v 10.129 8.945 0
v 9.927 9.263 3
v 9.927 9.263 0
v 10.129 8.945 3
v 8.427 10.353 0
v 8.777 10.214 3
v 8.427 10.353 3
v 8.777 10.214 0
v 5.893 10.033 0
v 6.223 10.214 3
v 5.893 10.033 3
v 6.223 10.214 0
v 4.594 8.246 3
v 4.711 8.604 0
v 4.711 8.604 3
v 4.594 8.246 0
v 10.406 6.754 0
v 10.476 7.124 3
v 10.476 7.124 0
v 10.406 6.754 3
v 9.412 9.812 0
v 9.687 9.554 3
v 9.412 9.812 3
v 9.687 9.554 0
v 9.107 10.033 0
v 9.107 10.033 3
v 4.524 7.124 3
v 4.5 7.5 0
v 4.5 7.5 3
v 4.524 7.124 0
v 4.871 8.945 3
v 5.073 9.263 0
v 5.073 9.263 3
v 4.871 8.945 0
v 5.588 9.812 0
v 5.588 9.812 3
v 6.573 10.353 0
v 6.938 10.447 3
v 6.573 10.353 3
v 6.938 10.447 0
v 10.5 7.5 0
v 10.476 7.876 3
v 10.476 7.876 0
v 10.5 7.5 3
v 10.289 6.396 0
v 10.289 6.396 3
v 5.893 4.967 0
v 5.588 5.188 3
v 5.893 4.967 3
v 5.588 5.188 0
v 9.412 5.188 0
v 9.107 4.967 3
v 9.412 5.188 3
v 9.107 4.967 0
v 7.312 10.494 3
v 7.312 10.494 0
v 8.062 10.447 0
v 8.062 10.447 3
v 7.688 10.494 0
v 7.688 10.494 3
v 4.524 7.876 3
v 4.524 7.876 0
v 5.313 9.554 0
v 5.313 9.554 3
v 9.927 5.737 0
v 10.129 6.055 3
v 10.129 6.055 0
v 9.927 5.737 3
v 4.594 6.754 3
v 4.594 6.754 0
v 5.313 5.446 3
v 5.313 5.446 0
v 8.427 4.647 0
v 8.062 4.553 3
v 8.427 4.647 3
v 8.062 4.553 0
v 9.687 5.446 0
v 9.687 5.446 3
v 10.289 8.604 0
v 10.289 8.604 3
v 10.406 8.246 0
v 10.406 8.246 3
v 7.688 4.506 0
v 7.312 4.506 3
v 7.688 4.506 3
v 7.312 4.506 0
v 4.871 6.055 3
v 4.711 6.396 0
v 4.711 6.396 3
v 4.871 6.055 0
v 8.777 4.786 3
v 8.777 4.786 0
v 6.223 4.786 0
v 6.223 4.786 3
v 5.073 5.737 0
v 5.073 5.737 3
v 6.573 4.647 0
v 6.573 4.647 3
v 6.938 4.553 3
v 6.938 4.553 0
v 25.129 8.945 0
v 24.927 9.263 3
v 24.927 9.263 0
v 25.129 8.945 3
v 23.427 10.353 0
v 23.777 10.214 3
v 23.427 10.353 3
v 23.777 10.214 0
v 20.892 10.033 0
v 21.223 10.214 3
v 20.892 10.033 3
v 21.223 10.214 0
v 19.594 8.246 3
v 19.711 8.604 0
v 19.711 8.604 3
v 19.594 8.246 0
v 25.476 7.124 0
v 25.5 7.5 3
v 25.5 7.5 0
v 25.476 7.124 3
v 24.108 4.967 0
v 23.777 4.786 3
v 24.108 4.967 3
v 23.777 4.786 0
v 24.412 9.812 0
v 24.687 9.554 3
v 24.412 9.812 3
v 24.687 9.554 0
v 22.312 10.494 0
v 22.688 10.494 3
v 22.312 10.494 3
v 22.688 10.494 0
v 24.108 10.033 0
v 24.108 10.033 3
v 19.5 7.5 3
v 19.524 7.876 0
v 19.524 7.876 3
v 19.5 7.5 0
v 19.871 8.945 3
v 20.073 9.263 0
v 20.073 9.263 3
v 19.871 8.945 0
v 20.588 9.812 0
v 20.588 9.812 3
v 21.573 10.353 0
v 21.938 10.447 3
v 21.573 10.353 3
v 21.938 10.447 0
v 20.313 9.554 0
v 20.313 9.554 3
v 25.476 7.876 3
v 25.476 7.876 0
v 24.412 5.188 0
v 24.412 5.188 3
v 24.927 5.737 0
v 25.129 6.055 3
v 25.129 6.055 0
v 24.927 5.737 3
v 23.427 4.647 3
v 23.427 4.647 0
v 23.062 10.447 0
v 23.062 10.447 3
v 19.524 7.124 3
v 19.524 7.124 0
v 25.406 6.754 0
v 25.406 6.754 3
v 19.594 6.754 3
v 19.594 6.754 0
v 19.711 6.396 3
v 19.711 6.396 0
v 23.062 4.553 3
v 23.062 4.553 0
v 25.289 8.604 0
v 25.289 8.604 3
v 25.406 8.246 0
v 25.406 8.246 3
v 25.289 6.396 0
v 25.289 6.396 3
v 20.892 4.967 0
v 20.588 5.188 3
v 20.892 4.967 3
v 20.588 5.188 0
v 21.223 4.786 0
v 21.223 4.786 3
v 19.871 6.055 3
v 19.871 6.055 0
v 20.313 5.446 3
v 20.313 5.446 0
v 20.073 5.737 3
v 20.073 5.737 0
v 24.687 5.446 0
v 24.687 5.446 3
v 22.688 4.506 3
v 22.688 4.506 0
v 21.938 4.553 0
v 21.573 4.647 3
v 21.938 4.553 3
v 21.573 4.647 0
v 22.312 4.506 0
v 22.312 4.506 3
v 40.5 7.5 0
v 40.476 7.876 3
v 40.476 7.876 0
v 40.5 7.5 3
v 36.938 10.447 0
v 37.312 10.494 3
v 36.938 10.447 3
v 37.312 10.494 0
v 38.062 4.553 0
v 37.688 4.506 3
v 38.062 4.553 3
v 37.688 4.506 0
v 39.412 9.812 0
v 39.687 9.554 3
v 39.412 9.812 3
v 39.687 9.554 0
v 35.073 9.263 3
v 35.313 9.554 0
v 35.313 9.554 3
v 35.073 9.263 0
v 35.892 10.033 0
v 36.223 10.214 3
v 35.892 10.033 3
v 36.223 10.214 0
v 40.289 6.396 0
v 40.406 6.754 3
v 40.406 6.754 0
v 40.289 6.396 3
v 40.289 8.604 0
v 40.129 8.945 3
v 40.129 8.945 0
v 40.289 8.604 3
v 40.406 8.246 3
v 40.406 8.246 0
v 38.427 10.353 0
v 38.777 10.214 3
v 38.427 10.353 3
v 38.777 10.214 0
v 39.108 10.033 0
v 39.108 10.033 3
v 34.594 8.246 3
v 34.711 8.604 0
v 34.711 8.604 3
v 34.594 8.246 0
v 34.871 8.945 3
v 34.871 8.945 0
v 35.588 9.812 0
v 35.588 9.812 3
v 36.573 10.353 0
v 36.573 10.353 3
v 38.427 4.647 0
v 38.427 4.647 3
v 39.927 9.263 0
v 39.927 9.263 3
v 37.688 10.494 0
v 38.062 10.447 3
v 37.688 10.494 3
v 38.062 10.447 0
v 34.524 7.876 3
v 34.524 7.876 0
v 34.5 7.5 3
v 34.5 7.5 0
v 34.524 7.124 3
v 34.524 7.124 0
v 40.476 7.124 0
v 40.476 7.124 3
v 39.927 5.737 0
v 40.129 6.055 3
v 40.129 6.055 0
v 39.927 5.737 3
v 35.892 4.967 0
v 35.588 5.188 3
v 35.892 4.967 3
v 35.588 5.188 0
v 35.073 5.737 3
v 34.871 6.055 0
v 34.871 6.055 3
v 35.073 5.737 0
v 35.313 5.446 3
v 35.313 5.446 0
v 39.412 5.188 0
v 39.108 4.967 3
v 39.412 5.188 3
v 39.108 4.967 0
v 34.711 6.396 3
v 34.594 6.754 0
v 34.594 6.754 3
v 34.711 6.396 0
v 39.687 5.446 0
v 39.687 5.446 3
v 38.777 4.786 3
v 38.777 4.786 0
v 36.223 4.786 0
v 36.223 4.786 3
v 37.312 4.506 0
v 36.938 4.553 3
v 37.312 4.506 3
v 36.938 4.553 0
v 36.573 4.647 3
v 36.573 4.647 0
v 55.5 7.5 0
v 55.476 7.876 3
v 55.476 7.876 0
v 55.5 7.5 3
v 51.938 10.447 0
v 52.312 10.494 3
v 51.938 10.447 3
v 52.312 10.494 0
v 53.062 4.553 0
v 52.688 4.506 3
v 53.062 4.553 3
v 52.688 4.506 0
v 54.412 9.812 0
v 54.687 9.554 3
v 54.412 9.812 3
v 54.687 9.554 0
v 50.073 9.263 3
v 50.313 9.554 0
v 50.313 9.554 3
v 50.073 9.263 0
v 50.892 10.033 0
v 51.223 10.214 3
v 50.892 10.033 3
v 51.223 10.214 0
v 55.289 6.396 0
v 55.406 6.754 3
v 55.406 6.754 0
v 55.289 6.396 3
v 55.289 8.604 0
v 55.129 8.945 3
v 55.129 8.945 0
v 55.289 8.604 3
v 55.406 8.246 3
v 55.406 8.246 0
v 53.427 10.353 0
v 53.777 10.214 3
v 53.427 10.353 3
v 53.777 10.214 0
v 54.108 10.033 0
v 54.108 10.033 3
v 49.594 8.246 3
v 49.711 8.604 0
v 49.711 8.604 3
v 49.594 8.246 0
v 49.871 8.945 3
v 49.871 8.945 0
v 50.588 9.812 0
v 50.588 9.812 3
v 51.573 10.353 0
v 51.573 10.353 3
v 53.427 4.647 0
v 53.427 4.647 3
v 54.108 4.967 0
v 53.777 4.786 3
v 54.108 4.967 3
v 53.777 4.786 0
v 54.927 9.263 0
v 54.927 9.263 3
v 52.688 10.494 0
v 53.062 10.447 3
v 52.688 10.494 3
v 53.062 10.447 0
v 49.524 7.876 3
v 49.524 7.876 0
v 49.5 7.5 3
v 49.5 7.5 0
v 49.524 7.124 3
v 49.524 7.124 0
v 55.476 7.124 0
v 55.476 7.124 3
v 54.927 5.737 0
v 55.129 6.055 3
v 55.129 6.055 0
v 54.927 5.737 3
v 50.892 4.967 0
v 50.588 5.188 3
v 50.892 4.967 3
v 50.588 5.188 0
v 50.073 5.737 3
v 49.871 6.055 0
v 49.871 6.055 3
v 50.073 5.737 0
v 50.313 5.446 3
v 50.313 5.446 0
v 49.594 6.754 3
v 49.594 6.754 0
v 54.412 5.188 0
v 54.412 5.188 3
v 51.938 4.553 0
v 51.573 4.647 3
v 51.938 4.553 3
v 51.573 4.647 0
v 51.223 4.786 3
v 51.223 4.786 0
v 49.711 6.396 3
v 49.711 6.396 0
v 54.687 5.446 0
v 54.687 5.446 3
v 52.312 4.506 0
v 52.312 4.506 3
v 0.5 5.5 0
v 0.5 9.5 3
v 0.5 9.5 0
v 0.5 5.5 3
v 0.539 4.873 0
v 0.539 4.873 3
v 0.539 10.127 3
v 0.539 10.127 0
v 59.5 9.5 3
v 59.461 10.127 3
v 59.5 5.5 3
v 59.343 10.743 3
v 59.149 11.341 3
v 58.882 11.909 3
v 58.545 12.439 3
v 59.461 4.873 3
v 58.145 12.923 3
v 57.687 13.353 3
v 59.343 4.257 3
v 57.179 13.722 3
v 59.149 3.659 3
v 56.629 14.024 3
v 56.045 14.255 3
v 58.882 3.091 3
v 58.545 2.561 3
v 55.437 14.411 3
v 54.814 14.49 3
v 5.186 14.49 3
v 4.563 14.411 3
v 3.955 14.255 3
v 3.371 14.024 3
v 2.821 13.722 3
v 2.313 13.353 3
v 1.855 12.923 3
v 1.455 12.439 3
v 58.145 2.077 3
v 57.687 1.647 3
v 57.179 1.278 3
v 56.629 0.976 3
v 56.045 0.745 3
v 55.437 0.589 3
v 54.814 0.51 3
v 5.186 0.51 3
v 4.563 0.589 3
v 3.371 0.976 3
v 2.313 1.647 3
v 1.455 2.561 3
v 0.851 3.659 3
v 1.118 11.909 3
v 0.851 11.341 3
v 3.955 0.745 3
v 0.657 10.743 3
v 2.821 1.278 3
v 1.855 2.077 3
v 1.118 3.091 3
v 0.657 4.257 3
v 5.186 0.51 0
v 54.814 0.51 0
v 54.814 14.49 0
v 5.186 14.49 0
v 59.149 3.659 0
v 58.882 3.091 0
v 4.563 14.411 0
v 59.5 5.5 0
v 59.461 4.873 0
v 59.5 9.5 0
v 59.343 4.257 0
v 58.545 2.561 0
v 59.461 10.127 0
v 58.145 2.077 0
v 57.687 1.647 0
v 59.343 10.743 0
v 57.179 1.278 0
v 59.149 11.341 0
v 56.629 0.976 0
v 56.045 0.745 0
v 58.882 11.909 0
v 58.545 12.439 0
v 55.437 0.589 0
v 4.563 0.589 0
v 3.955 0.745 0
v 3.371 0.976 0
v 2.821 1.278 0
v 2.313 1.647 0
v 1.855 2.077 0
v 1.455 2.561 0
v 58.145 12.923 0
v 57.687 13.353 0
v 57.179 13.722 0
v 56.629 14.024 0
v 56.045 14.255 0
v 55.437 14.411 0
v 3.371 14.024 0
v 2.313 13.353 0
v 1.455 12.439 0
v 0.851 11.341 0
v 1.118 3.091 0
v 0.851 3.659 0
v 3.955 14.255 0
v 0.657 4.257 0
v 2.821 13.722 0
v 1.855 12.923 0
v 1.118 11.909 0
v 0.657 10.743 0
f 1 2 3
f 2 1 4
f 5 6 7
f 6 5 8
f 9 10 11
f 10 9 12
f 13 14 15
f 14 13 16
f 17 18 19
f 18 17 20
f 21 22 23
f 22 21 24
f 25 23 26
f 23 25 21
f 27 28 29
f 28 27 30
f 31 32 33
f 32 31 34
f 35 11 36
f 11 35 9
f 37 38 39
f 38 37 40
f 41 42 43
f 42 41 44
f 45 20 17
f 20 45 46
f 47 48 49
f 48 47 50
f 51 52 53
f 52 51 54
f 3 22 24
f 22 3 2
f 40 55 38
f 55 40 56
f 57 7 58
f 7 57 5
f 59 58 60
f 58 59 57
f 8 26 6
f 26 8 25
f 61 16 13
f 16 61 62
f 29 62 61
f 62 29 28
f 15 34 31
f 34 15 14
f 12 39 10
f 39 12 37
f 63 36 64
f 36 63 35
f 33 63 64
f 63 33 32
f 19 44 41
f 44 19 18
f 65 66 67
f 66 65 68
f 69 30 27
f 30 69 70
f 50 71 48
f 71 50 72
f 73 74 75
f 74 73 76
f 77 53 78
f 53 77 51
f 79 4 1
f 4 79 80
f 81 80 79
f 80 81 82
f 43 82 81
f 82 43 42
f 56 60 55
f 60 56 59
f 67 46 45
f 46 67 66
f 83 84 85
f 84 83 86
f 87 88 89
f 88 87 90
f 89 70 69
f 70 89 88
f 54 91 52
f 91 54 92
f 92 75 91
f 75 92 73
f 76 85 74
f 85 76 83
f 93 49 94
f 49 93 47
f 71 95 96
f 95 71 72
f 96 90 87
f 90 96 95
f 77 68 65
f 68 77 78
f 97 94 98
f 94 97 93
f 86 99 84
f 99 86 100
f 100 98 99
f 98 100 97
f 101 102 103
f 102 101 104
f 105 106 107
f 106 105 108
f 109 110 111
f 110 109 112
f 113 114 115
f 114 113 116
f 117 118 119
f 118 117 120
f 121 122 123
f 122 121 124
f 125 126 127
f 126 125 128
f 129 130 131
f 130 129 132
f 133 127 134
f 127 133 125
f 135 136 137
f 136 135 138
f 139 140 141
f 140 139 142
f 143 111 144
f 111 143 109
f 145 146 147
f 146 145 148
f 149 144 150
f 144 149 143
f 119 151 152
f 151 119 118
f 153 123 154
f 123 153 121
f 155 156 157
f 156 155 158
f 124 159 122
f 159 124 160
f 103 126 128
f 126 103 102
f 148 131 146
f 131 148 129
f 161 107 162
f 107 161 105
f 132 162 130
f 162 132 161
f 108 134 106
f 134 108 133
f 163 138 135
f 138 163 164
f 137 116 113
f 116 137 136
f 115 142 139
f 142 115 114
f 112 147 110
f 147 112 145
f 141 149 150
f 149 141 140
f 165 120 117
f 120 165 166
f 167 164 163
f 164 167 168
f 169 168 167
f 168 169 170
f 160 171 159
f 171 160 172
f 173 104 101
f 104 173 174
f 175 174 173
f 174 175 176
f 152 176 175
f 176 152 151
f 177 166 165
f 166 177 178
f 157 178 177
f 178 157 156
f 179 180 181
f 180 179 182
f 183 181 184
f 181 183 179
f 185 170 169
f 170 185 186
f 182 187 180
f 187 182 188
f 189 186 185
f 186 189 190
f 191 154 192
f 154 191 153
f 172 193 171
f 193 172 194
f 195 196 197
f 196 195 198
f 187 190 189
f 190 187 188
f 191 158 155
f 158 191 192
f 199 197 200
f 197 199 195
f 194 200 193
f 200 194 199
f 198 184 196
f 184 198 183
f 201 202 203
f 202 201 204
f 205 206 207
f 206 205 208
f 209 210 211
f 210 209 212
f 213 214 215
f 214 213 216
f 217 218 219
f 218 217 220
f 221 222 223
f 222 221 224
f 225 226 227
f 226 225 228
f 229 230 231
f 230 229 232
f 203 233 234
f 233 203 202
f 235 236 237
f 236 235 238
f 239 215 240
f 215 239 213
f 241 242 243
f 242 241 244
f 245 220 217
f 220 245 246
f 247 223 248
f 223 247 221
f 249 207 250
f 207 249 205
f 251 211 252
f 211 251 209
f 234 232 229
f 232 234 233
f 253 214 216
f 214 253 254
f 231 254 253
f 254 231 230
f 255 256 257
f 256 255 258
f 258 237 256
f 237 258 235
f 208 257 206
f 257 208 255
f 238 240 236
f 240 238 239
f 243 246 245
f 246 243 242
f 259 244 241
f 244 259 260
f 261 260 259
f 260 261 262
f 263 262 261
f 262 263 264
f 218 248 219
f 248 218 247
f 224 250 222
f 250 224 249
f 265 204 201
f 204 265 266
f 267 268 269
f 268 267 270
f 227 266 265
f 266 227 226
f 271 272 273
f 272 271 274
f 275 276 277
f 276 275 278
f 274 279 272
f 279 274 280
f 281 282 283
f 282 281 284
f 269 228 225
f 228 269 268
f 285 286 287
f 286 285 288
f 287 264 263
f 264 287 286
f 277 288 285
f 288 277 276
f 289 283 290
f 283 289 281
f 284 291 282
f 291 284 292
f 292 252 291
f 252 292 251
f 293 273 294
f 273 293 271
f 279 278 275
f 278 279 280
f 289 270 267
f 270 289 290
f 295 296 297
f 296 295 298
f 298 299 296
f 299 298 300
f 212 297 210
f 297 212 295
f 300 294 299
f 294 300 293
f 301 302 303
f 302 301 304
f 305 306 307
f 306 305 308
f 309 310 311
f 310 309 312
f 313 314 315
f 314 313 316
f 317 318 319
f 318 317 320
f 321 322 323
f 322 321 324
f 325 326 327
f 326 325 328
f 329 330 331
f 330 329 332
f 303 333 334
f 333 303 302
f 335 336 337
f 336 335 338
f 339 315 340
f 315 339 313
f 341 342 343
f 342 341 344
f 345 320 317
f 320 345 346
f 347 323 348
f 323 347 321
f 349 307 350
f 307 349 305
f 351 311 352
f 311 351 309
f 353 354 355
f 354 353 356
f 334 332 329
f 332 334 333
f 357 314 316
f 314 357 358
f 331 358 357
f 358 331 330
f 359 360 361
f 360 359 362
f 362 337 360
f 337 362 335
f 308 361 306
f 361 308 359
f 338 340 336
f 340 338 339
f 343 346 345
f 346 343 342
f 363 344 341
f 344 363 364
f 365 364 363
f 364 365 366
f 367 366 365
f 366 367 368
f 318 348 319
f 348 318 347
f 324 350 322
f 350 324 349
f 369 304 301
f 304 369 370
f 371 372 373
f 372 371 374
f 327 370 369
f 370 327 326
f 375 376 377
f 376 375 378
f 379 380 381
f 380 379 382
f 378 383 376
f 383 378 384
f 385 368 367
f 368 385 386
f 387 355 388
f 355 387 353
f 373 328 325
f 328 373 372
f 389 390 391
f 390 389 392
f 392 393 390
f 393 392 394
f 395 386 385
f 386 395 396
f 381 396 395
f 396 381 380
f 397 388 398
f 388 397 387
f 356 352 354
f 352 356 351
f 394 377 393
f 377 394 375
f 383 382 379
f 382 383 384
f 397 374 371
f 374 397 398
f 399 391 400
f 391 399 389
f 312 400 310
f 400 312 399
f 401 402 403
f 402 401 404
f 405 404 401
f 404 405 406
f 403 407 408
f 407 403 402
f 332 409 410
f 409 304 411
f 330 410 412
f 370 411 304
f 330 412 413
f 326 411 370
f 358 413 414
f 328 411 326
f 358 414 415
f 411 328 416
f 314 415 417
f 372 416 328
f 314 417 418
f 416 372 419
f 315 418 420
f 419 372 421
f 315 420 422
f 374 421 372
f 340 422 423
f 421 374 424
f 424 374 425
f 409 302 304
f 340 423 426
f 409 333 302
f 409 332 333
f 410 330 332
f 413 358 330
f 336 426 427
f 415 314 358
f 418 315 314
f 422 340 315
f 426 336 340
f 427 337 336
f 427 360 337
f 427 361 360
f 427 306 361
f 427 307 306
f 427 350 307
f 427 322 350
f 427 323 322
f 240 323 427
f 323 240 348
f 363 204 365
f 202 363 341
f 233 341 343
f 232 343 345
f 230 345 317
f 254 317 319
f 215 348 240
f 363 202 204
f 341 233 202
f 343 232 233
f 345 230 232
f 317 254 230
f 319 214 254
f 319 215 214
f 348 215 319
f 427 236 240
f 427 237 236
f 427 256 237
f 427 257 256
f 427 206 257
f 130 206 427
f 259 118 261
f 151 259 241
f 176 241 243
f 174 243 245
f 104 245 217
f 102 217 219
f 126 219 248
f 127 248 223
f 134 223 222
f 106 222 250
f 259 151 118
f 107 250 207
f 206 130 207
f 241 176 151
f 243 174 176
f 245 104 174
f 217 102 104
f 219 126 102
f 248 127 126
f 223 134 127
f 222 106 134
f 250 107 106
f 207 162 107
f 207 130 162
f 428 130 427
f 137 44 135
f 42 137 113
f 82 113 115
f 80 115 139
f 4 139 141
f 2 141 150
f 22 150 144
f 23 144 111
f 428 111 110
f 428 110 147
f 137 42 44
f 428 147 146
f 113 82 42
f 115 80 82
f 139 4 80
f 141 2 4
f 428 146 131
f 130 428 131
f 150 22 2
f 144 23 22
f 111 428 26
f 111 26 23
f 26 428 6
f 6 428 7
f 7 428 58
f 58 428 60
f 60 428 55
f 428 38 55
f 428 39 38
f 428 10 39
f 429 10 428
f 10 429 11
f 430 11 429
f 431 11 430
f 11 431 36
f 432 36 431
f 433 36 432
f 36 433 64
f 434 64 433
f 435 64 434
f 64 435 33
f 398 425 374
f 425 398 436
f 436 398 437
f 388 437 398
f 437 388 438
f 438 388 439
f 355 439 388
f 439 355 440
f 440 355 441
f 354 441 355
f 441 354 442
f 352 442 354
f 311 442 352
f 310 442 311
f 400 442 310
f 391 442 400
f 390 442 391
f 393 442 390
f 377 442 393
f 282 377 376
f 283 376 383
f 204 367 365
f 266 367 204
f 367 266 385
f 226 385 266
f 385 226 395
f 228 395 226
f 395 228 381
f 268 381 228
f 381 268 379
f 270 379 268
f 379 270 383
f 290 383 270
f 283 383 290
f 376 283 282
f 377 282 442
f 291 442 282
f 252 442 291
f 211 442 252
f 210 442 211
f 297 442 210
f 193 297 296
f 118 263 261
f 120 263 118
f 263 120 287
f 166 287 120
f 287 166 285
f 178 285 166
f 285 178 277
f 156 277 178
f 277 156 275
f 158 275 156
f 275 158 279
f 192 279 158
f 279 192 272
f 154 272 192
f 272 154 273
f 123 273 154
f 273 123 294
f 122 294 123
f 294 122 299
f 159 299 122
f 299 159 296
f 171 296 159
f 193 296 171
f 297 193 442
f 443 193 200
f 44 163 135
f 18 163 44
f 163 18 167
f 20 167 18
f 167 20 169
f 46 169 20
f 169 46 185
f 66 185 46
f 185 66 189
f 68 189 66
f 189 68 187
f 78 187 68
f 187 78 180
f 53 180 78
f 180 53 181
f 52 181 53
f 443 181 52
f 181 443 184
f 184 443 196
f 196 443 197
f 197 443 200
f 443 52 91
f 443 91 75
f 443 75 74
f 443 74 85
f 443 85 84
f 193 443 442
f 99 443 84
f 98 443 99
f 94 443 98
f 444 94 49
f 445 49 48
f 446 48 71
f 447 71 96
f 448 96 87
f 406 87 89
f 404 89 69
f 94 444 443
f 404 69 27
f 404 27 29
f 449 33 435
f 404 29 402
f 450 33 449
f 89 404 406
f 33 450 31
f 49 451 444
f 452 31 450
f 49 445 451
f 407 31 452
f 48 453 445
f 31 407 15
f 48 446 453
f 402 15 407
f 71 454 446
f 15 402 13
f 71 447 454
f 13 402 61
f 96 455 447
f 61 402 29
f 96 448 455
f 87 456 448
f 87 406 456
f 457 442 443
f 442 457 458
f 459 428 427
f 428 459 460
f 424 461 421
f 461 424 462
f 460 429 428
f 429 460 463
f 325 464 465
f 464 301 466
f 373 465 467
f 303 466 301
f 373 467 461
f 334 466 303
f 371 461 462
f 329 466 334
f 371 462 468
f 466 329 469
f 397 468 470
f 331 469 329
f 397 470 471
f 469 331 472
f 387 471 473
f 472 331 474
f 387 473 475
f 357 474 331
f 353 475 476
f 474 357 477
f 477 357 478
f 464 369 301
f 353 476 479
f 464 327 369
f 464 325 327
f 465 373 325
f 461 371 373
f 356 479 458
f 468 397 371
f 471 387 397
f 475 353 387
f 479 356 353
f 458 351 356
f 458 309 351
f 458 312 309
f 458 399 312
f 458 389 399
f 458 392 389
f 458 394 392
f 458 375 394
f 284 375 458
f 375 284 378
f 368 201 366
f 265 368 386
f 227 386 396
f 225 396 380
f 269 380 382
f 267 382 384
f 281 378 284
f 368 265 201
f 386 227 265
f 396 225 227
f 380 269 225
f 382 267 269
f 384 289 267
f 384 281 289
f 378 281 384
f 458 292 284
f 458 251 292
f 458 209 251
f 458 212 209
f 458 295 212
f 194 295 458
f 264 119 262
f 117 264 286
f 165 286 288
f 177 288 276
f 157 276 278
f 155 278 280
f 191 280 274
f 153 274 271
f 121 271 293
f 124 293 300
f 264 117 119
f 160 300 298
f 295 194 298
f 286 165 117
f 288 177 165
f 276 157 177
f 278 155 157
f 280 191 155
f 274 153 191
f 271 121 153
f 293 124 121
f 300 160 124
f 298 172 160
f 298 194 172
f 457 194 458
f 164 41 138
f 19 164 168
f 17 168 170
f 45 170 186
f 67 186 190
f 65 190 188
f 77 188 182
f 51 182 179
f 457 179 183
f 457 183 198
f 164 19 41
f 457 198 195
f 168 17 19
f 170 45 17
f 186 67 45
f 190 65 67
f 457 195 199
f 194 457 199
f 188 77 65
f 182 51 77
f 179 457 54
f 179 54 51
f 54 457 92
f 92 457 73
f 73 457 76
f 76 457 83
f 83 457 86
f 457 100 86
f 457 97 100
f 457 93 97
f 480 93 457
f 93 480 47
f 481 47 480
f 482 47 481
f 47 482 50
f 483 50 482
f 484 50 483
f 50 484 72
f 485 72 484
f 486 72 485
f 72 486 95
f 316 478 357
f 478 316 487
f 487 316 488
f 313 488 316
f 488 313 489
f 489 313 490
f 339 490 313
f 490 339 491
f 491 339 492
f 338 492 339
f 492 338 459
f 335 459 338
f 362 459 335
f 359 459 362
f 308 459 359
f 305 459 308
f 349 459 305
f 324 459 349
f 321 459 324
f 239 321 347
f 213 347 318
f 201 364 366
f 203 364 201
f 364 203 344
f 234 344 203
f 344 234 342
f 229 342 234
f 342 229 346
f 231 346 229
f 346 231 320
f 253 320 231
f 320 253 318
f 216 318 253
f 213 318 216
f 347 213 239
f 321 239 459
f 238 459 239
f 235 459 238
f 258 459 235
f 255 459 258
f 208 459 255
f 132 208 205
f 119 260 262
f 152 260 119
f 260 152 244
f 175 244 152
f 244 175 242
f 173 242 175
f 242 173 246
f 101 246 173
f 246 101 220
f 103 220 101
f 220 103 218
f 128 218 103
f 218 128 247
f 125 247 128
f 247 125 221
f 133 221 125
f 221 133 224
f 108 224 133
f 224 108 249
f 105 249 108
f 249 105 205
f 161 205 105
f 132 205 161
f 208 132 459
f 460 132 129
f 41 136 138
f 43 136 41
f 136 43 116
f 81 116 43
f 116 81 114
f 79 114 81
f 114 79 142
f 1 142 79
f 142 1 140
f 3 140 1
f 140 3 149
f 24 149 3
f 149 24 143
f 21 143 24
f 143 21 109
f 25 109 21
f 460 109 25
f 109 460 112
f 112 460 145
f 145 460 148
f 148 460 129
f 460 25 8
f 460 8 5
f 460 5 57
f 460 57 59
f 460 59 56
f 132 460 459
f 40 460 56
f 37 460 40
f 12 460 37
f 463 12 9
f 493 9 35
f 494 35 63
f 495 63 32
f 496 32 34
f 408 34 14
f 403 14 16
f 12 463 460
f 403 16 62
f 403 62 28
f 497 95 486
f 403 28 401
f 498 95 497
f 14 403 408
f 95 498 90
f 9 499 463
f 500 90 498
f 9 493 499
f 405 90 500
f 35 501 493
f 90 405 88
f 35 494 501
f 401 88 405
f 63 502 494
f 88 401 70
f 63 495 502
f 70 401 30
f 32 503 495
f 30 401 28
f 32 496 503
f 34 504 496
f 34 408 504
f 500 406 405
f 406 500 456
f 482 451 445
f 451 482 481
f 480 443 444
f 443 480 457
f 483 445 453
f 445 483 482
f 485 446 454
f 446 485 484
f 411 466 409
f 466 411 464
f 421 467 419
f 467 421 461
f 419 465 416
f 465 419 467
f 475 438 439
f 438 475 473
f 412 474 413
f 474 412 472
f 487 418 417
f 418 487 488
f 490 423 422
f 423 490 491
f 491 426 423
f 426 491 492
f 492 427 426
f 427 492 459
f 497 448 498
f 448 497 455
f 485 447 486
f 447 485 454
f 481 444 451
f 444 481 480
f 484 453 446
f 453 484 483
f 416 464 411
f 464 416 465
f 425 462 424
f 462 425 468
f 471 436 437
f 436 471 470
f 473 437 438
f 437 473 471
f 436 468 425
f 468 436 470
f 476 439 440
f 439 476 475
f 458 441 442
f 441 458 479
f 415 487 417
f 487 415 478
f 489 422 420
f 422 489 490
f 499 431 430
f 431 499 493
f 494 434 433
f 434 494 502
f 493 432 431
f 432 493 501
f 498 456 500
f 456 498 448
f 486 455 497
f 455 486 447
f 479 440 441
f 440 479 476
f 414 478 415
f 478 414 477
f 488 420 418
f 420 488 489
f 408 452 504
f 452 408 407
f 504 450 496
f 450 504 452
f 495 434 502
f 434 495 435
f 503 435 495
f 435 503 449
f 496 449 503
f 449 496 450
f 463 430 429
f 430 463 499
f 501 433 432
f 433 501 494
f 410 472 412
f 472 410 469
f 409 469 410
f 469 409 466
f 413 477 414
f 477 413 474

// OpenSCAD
// Generated by SolidPython 1.1.3 on 2023-01-30 13:27:20
$fn = 50;


difference() {
	union() {
		translate(v = [30.0000000000, 7.5000000000, 0]) {
			rotate(a = [0, 0, 0]) {
				hull() {
					translate(v = [-24.5000000000, 2.0000000000, 0]) {
						rotate(a = [0, 0, 0]) {
							translate(v = [0, 0, 0]) {
								rotate(a = [0, 0, 0]) {
									cylinder(h = 3, r = 5);
								}
							}
						}
					}
					translate(v = [24.5000000000, 2.0000000000, 0]) {
						rotate(a = [0, 0, 0]) {
							translate(v = [0, 0, 0]) {
								rotate(a = [0, 0, 0]) {
									cylinder(h = 3, r = 5);
								}
							}
						}
					}
					translate(v = [-24.5000000000, -2.0000000000, 0]) {
						rotate(a = [0, 0, 0]) {
							translate(v = [0, 0, 0]) {
								rotate(a = [0, 0, 0]) {
									cylinder(h = 3, r = 5);
								}
							}
						}
					}
					translate(v = [24.5000000000, -2.0000000000, 0]) {
						rotate(a = [0, 0, 0]) {
							translate(v = [0, 0, 0]) {
								rotate(a = [0, 0, 0]) {
									cylinder(h = 3, r = 5);
								}
							}
						}
					}
				}
			}
		}
	}
	union() {
		translate(v = [7.5000000000, 7.5000000000, 0]) {
			rotate(a = [0, 0, 0]) {
				translate(v = [0, 0, -50]) {
					rotate(a = [0, 0, 0]) {
						cylinder(h = 100, r = 3.0000000000);
					}
				}
			}
		}
		translate(v = [22.5000000000, 7.5000000000, 0]) {
			rotate(a = [0, 0, 0]) {
				translate(v = [0, 0, -50]) {
					rotate(a = [0, 0, 0]) {
						cylinder(h = 100, r = 3.0000000000);
					}
				}
			}
		}
		translate(v = [37.5000000000, 7.5000000000, 0]) {
			rotate(a = [0, 0, 0]) {
				translate(v = [0, 0, -50]) {
					rotate(a = [0, 0, 0]) {
						cylinder(h = 100, r = 3.0000000000);
					}
				}
			}
		}
		translate(v = [52.5000000000, 7.5000000000, 0]) {
			rotate(a = [0, 0, 0]) {
				translate(v = [0, 0, -50]) {
					rotate(a = [0, 0, 0]) {
						cylinder(h = 100, r = 3.0000000000);
					}
				}
			}
		}
	}
}
/***********************************************
*********      SolidPython code:      **********
************************************************
 
from solid import *
import os
import subprocess

import oomB

import opsc_library_gen

mode = "laser"
#mode = "3d_print"

defined_objects = {}

radius_dict = {}
countersunk_dict = {}


def set_mode(m):
    global mode
    mode = m
    radius_dict['M6'] = 6.5/2
    radius_dict['M3'] = 3.3/2
    if mode == "laser":
        radius_dict['M6'] = 6/2
        radius_dict['M3'] = 3/2

    countersunk_dict['M3'] = {}
    countersunk_dict['M3']['little_rad'] = radius_dict['M3']
    countersunk_dict['M3']['big_rad'] = (5.5+0.6)/2
    if mode == "laser":
        countersunk_dict['M3']['big_rad'] = (4.75+0.6)/2
        countersunk_dict['M3']['little_rad'] = (4.75+0.6)/2

    countersunk_dict['M3']['height'] = 1.7


def opsc_make_object(filename, objects, save_type="none",resolution=50, layers = 1, tilediff = 200, mode="laser"):
    set_mode(mode)
    save_type = save_type.lower()
    os.makedirs(os.path.dirname(filename), exist_ok=True)
    final_object = opsc_get_object(objects)
    # Save the final object to the specified filename    
    scad_render_to_file(final_object, filename, file_header='$fn = %s;' % resolution, include_orig_code=True)
    if mode == "laser":
        filename_laser = filename.replace(".scad","-flat.scad")
        scad_render_to_file(getLaser(final_object, layers=layers, tilediff=tilediff), filename_laser, file_header='$fn = %s;' % resolution, include_orig_code=True)
        if save_type == "all":
            saveToAll(filename_laser)
        elif save_type == "dxf":
            saveToDxf(filename_laser)
    if save_type == "all":
        saveToAll(filename)
    elif save_type == "dxf":
        saveToDxf(filename)


def opsc_get_object(objects):
    # Create the solidpython objects
    positive_objects = [get_opsc_item(obj) for obj in objects if obj['type'] == 'positive']
    negative_objects = [get_opsc_item(obj) for obj in objects if obj['type'] == 'negative']
    # Union the positive objects
    positive_object = union()(*positive_objects)
    # Union the negative objects
    negative_object = union()(*negative_objects)
    # Create the final object by subtracting the negative objects from the positive objects
    return difference()(positive_object, negative_object)

def get_opsc_item(params):
    # A dictionary to map radius string values to numerical values
    #radius_dict = {'small': 5, 'medium': 10, 'large': 15}
    # An array of function names for basic shapes
    basic_shapes = ['cube', 'sphere', 'cylinder']
    
    # An array of function names for other shapes
    other_shapes = ['hole', 'slot', 'rounded_rectangle', 'countersunk']
    


    # Convert radius to r if present, and remove radius from the params dictionary
    if 'radius' in params:
        if isinstance(params['radius'], str):
            # Use the radius_dict to map the radius string value to a numerical value
            params['r'] = radius_dict[params['radius']]
        else:
            params['r'] = params['radius']
        del params['radius']
    

    # Check if the object type is a basic shape
    if params['shape'] in basic_shapes:
        # Remove shape and unexpected dictionary values
        allowed_keys = {'size', 'r', 'r1', 'r2', 'd', 'h', 'rw', 'rh', 'dw', 'dh'}
        shape_params = {k: v for k, v in params.items() if k in allowed_keys}

        # Call the corresponding function for the shape parameter, using ** notation to pass the shape_params dictionary as keyword arguments
        return get_opsc_transform(params,globals()[params['shape']](**shape_params))
    
    # If the object type is not a basic shape, check if it's a defined object or one of the other shapes
    elif params['shape'] in other_shapes:
        # Call the corresponding function for the shape parameter, passing the params dictionary as an argument
        p2 = copy.deepcopy(params)
        p2["pos"] = [0,0,0]
        return get_opsc_transform(params,globals()[params['shape']](p2))
    
    # If the object is not a basic shape or a defined object, try to import it from a .scad file
    else:
        obj = defined_objects[params['shape']]
        return get_opsc_transform(params,obj)

def get_opsc_transform(params, solid_obj):
    # Rotate the object based on the 'rot' field in the params dictionary, or the 'rotX', 'rotY', and 'rotZ' fields if 'rot' is not present
    rot = params.get('rot', [])
    if rot:
        rotX, rotY, rotZ = rot
    else:
        rotX = params.get('rotX', 0)
        rotY = params.get('rotY', 0)
        rotZ = params.get('rotZ', 0)
    solid_obj = rotate([rotX, rotY, rotZ])(solid_obj)

    # Translate the object based on the 'pos' field in the params dictionary, or the 'x', 'y', and 'z' fields if 'pos' is not present
    pos = params.get('pos', [])
    if pos:
        x, y, z = pos
    else:
        x = params.get('x', 0)
        y = params.get('y', 0)
        z = params.get('z', 0)
    solid_obj = translate([x, y, z])(solid_obj)
    return solid_obj


import random

def opsc_easy_array(type, shape, repeats, pos_start, shift_arr, **kwargs):
    for i in range(0,3):
        repeats.append(1)
        pos_start.append(0)
        shift_arr.append(0)
    return_objects = []

    for x in range(0,repeats[0]):
        for y in range(0,repeats[1]):
            for z in range(0,repeats[2]):
                return_objects.append(opsc_easy(type, shape, pos=[pos_start[0]+x*shift_arr[0],pos_start[1]+y*shift_arr[1],pos_start[2]+z*shift_arr[2]], **kwargs))
    return return_objects                



def opsc_easy(type, shape, **kwargs):
    obj = {
        'type': type,
        'shape': shape
    }
    for param in ['size', 'r', 'r1', 'r2', 'd', 'h', 'rw', 'rh', 'dw', 'dh', 'pos', 'x', 'y', 'z', 'rot', 'rotX', 'rotY', 'rotZ', "w"]:
        if param in kwargs:
            obj[param] = kwargs[param]
    return obj

def hole(params):
    p2 = copy.deepcopy(params)  
    # Check if the radius is a string and replace it with the corresponding value from the dictionary
    if isinstance(p2['r'], str):
        p2['r'] = radius_dict[p2['r']]
    
    # Set the height to 100 if not specified
    if 'h' not in p2:
        p2['h'] = 100
        p2["pos"] = [0,0,-50]
    p2["center"] = True
    # Create the cylinder object
    p2["shape"] = "cylinder"
    p2["type"] = "positive"

    return get_opsc_item(p2)

import copy

def countersunk(params):
    p2 = copy.deepcopy(params)
    counter_rad = p2['r']
    p2['r'] = radius_dict[p2['r']]
    hp = copy.deepcopy(p2)
    hp["type"] = "positive"
    hp["shape"] = "hole"
    del hp["rot"]
    hol = get_opsc_item(hp)
    
    cp = copy.deepcopy(p2)
    cp["h"] = countersunk_dict[counter_rad]["height"]
    cp["r2"] = countersunk_dict[counter_rad]["little_rad"]
    cp["r1"] = countersunk_dict[counter_rad]["big_rad"]
    del cp["r"]
    del cp["rot"]
    cp["type"] = "positive"
    cp["shape"] = "cylinder"
    cp["pos"] = [0,0,0]

    top = get_opsc_item(cp)
    return union()(hol,top)



def slot(params):  
    p2 = copy.deepcopy(params) 
    if isinstance(p2['r'], str):
        p2['r'] = radius_dict[p2['r']]
    p2["type"] = "positive"
    p2["shape"] = "hole"
    del p2["rot"]
    p2["pos"] = [0,0,0]
    left = copy.deepcopy(p2)
    right = copy.deepcopy(p2)
    left["pos"][0] = p2["w"] / 2 - p2["r"] 
    
    right["pos"][0] = -p2["w"] / 2 + p2["r"] 
    pass
    leftObj = get_opsc_item(left)
    rightObj = get_opsc_item(right)
    return hull()(leftObj, rightObj)

def rounded_rectangle(params):   
    p2 = copy.deepcopy(params) 
    p2["h"] = p2["size"][2]
    p2["pos"] = p2.get("pos", [0, 0, 0]) 
    p2["type"] = "positive"
    p2["shape"] = "hole"
    p2["pos"] = [0,0,0]
    
    if 'rot' in p2:
        del p2["rot"]   
    if 'r' not in p2:
        p2["r"] = 5 
    tl = copy.deepcopy(p2)
    tr = copy.deepcopy(p2)
    bl = copy.deepcopy(p2)
    br = copy.deepcopy(p2)
    tl["pos"][0] = -(p2["size"][0] - p2["r"]*2)/2
    tl["pos"][1] = (p2["size"][1] - p2["r"]*2)/2
    tr["pos"][0] = (p2["size"][0] - p2["r"]*2)/2
    tr["pos"][1] = (p2["size"][1] - p2["r"]*2)/2
    bl["pos"][0] = -(p2["size"][0] - p2["r"]*2)/2
    bl["pos"][1] = -(p2["size"][1] - p2["r"]*2)/2
    br["pos"][0] = (p2["size"][0] - p2["r"]*2)/2
    br["pos"][1] = -(p2["size"][1] - p2["r"]*2)/2
    del tl["size"]
    del tr["size"]
    del bl["size"]
    del br["size"]
    tlo = get_opsc_item(tl)
    tro = get_opsc_item(tr)
    blo = get_opsc_item(bl)
    bro = get_opsc_item(br)    
    return hull()(tlo, tro, blo, bro)



def import_scad_object(filename):
    # Import the .scad file and convert it to a solidpython object
    #filename = "parts"
    obj = import_scad(filename)
    return obj.main()
    


import os
import solid as solidpython

# A dictionary to store the defined objects


def load_scad_objects():
    opsc_library_gen.gen_library(defined_objects)

import random

def test(num_objects):
    objects = []
    for i in range(num_objects):
        # Choose a random shape
        #shape = random.choice(['cube', 'sphere', 'cylinder', 'hole', 'slot', "rounded_rectangle"])
        shape = random.choice(["rounded_rectangle"])

        # Choose a random type
        type = random.choice(['positive', 'negative'])
        
        # Create an empty object dictionary
        obj = {'shape': shape, 'type': type}
        
        # Set shape-specific parameters
        if obj['shape'] in ['cube']:
            obj['size'] =  [random.uniform(5, 15), random.uniform(5, 15), random.uniform(5, 15)]
        if obj['shape'] in ['rounded_rectangle']:
            obj['size'] =  [random.uniform(5, 15), random.uniform(5, 15), random.uniform(5, 15)]
            obj['r'] = random.uniform(0.5, 5)
        elif obj['shape'] == 'sphere':
            obj['r'] = random.uniform(5, 15)
        elif obj['shape'] in ['cylinder', 'hole']:
            obj['r'] = random.uniform(0.5, 5)
            obj['h'] = random.uniform(5, 15)
        elif obj['shape'] == 'slot':
            obj['r'] = random.uniform(0.5, 5)
            obj['h'] = random.uniform(5, 15)
            obj['w'] = random.uniform(5, 15)
        
        # Set a random position and rotation
        obj['pos'] = [random.uniform(-20, 20), random.uniform(-20, 20), random.uniform(-20, 20)]
        obj['rot'] = [random.uniform(-180, 180), random.uniform(-180, 180), random.uniform(-180, 180)]
        
        # Add the object to the list
        objects.append(obj)
    return objects

####### old file saving
def saveToAll(fileIn):
    saveToDxf(fileIn)
    saveToPng(fileIn)
    saveToStl(fileIn)
    saveToSvg(fileIn)

def saveToDxf(fileIn, fileOut="", copy_to_laser=True):
    if fileOut == "":
        fileOut = fileIn.replace(".scad",".dxf")
    saveToFile(fileIn, fileOut)


    
def saveToPng(fileIn, fileOut="",extra="--render"):
    if fileOut == "":
        fileOut = fileIn.replace(".scad",".png")
    saveToFile(fileIn, fileOut)

def saveToStl(fileIn, fileOut=""):
    if fileOut == "":
        fileOut = fileIn.replace(".scad",".stl")
    saveToFile(fileIn, fileOut)
    
def saveToSvg(fileIn, fileOut=""):
    if fileOut == "":
        fileOut = fileIn.replace(".scad",".svg")
    saveToFile(fileIn, fileOut)

def saveToFile(fileIn, fileOut,extra=""):
    #extra = extra + " --colorscheme Tomorrow"

    launchStr = 'openscad -o "' + fileOut + '"' + extra + ' "' + fileIn + '"'
    if ".png" in fileOut:
        launchStr = launchStr + " --render"
    print("            saveToFile launch string: " + launchStr)
    subprocess.run(launchStr)
    x=0

def getLaser(final_object,start=1.5,layers=1,thickness=3,tilediff=200):
        rv= []

        for x in range(layers):
            rv.append(translate([0,x*tilediff,0])(
                    projection()(
                        intersection()(translate([-500,-500,start+x*thickness])(cube(size=[1000,1000,0.1])),
                            final_object
                        )
                    )
            )
            )
            
        return union()(rv)

set_mode("laser")
load_scad_objects() 
 
************************************************/
